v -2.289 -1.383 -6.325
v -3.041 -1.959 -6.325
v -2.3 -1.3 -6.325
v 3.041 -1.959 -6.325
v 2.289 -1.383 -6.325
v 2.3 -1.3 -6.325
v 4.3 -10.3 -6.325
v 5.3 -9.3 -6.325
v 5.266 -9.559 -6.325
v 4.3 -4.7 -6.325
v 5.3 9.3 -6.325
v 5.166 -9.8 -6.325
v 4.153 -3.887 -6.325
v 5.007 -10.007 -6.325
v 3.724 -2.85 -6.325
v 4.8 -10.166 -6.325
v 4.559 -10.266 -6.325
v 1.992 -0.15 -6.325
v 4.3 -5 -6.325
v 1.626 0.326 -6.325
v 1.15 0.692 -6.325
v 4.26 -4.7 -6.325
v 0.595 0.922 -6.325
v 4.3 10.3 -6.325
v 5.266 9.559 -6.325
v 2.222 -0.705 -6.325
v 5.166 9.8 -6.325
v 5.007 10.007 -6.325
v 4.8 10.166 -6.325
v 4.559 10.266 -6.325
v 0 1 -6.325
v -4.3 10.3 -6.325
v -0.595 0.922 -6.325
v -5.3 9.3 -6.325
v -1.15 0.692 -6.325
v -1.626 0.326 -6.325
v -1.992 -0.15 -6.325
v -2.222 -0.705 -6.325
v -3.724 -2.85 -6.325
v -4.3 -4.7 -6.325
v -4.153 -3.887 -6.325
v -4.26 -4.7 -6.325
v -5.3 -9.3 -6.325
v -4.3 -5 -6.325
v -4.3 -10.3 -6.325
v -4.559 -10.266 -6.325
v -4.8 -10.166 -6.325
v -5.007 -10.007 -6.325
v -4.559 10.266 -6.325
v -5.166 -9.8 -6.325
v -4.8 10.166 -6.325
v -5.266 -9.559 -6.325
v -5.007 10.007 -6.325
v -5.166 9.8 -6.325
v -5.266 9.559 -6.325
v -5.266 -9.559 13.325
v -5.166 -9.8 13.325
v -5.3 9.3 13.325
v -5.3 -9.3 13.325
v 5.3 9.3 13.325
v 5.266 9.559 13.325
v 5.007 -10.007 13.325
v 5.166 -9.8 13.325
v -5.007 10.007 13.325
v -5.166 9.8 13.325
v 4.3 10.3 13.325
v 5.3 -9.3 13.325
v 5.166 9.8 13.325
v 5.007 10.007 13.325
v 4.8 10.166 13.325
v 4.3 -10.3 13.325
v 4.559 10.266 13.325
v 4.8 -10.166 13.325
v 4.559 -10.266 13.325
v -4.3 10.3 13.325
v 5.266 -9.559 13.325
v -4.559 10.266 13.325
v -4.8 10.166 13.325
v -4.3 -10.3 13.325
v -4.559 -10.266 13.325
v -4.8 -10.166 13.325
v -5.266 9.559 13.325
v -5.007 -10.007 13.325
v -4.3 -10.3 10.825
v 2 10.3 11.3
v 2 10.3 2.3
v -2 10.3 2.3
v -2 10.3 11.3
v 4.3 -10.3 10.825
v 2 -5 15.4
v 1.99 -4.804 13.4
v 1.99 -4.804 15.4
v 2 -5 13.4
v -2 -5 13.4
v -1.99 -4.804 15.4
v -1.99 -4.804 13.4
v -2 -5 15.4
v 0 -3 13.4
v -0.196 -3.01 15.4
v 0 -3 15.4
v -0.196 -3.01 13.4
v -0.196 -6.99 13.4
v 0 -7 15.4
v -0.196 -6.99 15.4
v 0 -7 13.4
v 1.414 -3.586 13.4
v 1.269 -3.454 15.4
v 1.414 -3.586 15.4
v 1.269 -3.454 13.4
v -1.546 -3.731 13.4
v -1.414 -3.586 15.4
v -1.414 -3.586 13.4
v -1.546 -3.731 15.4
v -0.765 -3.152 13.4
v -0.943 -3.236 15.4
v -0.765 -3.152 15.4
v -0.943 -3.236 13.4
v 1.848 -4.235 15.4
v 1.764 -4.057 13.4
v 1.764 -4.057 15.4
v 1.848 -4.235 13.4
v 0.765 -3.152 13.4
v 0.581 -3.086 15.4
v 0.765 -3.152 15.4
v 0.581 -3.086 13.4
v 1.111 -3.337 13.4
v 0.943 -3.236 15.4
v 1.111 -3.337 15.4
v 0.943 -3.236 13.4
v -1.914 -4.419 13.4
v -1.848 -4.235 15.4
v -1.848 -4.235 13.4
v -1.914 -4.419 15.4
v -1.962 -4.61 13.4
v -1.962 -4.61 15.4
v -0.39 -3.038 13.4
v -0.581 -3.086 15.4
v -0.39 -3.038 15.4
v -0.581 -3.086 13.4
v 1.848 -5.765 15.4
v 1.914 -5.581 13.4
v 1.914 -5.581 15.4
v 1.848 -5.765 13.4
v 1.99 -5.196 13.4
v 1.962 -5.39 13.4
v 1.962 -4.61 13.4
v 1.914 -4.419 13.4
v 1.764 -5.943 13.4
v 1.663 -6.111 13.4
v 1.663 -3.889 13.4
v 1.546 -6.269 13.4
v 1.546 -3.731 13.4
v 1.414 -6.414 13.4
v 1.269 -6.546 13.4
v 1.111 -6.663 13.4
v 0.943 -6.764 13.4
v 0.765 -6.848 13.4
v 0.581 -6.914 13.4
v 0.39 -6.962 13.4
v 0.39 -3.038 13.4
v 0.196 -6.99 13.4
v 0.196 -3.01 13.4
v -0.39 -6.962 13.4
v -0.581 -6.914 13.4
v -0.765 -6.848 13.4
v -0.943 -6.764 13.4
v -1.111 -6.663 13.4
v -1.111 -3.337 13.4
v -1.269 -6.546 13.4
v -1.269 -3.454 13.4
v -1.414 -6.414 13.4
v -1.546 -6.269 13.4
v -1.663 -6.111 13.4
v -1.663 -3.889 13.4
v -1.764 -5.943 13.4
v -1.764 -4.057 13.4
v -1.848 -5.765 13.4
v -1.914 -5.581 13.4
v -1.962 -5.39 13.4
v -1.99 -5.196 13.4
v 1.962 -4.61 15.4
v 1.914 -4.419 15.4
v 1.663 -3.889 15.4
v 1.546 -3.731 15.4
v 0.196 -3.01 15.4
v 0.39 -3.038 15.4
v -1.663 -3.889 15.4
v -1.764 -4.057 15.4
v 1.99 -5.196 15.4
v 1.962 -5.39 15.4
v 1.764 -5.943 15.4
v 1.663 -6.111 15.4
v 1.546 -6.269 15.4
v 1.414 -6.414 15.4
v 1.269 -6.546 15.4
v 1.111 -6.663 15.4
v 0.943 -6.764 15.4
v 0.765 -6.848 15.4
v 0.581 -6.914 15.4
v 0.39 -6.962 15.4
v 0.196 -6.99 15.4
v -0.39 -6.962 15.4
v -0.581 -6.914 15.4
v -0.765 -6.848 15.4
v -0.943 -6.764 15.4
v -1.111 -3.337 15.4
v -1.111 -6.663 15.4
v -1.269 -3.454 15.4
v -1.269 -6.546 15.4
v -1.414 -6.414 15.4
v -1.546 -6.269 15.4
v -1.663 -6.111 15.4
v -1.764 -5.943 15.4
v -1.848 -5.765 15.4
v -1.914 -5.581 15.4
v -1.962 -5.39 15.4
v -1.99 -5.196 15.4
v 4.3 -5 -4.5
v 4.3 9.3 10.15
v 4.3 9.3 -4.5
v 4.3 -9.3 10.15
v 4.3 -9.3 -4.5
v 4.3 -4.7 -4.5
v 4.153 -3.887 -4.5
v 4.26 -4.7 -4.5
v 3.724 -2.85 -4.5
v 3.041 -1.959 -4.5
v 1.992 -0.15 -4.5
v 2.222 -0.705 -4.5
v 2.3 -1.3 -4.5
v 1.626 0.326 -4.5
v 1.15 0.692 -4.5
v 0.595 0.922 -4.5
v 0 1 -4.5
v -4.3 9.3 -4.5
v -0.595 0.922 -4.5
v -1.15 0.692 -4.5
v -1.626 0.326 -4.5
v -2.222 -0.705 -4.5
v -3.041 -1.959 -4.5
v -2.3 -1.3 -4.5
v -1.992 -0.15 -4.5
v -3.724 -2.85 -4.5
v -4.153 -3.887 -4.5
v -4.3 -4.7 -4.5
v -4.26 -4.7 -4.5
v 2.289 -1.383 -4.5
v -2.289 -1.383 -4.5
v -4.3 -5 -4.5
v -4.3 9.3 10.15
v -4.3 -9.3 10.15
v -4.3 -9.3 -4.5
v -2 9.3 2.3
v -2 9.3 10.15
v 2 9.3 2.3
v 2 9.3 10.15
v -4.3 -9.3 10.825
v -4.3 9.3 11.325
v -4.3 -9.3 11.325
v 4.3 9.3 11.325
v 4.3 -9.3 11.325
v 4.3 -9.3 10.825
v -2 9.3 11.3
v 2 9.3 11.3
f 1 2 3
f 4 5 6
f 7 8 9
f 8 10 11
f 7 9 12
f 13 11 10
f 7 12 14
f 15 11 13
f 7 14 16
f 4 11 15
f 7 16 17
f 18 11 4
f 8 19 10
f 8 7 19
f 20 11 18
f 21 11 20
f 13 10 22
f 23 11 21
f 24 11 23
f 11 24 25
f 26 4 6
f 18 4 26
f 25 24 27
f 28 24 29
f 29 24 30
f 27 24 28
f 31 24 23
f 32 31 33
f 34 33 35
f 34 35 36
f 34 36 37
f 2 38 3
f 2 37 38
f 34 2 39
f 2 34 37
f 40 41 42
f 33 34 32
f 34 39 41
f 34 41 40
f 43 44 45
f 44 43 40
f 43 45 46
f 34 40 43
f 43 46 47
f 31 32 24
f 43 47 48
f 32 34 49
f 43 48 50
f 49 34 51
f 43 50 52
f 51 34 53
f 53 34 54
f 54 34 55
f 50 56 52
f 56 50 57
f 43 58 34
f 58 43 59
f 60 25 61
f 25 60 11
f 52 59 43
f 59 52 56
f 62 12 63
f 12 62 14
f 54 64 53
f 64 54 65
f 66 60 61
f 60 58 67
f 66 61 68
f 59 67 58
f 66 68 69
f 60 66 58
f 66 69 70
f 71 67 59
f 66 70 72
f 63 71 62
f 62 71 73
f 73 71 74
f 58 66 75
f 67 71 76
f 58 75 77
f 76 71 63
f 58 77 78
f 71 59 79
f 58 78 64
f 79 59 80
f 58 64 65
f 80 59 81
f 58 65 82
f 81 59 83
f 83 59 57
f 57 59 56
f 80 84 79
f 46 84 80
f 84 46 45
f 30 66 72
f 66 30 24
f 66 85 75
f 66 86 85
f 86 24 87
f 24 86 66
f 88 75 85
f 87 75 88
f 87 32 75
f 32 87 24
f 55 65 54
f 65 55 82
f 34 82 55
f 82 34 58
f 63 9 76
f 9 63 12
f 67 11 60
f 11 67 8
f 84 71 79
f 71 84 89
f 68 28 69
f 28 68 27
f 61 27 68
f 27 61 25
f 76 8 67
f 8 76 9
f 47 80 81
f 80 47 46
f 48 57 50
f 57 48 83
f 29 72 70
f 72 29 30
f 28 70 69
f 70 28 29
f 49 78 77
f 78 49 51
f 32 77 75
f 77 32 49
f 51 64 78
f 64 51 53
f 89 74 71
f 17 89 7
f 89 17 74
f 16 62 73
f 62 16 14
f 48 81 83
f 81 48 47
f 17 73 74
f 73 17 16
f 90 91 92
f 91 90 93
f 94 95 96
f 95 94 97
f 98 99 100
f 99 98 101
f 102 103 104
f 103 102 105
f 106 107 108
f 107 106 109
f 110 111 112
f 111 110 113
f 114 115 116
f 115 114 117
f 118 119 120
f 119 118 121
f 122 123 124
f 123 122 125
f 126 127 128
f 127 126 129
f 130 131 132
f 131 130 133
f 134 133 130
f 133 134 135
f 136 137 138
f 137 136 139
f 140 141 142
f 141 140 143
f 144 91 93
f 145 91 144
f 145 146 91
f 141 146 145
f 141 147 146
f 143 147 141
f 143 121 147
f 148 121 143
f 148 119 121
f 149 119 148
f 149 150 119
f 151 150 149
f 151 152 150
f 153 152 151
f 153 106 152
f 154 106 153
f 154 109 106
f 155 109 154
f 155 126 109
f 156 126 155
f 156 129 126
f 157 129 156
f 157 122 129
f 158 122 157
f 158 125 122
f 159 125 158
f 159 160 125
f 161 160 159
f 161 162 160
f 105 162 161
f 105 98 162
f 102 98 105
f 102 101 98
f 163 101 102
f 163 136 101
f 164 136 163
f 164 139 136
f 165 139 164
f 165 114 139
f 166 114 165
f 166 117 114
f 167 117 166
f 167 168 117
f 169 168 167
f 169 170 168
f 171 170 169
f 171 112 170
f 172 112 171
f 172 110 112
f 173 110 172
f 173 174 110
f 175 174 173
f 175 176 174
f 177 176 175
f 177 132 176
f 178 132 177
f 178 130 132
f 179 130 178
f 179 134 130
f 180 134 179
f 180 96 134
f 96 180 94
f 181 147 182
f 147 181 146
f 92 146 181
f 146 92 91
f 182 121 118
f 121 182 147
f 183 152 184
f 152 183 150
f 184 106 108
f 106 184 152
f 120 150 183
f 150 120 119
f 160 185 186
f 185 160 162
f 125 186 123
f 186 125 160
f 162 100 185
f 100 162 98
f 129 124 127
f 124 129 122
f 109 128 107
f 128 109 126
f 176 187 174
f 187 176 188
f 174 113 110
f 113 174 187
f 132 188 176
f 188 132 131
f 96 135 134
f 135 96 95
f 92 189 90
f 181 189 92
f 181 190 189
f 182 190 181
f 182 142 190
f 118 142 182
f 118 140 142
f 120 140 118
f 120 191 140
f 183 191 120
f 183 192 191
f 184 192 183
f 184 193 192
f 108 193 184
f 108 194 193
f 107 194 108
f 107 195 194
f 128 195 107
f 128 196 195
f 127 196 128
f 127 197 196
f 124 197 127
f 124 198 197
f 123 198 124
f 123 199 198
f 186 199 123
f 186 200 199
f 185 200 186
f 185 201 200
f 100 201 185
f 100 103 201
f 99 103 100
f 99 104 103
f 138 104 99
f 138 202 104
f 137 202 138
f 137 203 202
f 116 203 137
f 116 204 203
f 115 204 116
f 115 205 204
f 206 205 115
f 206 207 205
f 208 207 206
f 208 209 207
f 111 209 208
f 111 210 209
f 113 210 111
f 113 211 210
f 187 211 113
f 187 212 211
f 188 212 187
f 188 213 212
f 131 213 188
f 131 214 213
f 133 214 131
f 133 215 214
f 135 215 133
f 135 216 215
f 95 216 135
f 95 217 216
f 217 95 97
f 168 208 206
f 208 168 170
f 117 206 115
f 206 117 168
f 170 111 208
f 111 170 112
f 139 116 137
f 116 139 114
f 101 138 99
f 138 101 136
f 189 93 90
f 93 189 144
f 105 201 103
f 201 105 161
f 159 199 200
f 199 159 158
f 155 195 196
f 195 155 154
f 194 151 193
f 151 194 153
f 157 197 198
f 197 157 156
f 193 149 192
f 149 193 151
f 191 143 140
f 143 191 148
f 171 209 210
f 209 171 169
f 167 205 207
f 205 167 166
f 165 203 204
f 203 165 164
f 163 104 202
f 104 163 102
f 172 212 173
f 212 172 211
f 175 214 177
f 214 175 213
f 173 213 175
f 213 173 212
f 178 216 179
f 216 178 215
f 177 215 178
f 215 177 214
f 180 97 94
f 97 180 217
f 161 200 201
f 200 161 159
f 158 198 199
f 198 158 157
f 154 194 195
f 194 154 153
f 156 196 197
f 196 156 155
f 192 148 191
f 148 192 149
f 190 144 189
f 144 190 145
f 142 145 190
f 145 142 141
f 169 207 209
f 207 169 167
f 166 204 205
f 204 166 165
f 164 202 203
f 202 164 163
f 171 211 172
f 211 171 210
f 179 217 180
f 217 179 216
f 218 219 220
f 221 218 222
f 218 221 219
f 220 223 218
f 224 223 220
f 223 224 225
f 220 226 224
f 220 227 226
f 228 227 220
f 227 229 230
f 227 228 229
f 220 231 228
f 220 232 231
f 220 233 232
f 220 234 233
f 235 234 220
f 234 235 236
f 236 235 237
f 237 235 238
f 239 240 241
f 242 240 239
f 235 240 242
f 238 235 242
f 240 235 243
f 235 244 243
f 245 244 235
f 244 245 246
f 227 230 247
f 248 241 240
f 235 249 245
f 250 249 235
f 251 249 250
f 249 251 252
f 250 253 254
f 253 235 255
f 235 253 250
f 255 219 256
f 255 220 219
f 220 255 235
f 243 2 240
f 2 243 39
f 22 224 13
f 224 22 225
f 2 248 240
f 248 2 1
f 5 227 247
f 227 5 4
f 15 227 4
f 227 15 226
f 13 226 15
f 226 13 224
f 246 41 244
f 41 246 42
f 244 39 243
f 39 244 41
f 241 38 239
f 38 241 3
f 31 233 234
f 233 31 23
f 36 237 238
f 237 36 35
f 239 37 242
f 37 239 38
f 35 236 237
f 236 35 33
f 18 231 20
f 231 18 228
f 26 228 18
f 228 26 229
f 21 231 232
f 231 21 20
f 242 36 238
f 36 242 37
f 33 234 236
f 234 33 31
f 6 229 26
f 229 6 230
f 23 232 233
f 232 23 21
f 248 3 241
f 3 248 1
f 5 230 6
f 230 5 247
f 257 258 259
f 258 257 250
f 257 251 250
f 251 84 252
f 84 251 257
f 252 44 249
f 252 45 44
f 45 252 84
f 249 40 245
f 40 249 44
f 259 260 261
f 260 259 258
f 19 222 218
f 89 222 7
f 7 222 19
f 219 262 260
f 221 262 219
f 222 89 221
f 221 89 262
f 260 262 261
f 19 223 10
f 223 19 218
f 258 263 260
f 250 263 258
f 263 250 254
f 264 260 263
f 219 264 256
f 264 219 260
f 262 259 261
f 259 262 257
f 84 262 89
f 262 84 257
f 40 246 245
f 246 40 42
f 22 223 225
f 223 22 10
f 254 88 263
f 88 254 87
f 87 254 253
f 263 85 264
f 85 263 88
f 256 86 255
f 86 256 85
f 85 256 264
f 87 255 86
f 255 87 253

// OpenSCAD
// file: config.scad
//Parameters for servo_lx16a
$fn = 24;
//x,y,z => l,w,h


servo_l         = 45.20; 
servo_w         = 24.70; 
body_h          = 32;

servo_h         = 35;

hub_offset      = 10.10;

rad = 2;


w_between_holes = 20.5;
l_between_top_holes = 20.7;
l_between_bottom_holes = 24.45;
top_hole_l_offset = 6.1;
bottom_hole_l_offset = 2.35;

hole_dia = 1.6;
attach_screw_l = 5;

top_hub_carve_h = 2.6;
bottom_hub_carve_h = 3.4;

top_attach_carve_h = 1.1;
bottom_attach_carve_h = 1.9;

hub_carve_r = 10.8;

hub_r = 10.1;

w_between_ridges = 19.5;

top_horn_h = 3.20;
bottom_horn_h = 3.85;

top_horn_r = 3.15;
bottom_horn_r = 3;



hub_h           = 4;
small_hub_r     = 6.15/2;  
horn_r          = 4.66/2;
horn_h          = 3;

wire_l          = 4;
wire_w          = 1.5;
wire_h          = 1;
wire_place      = 4.8;
// file: electronics.scad
$fn=100;

//on_off_switch();

//pi_zero();

//translate ([0,100,0])
//pca9685();

//dc_dc();

//pi_camera();



module header(pins, rows){
  color("darkgrey") cube([2.54*pins,2.54*rows,1.27]);
  
  color("gold")
  for(x=[0:pins-1],y=[0:rows-1])
    translate([x*2.54+(1.27+.6)/2,y*2.54+(1.27+.6)/2,-3.5]) cube([0.6,0.6,11.5]);
}


module pi_zero(){
    // PCB
    color("limegreen") difference(){
        hull(){
            translate([-(65-6)/2,-(30-6)/2,0]) cylinder(r=3, h=1.4 );
            translate([-(65-6)/2, (30-6)/2,0]) cylinder(r=3, h=1.4 );
            translate([ (65-6)/2,-(30-6)/2,0]) cylinder(r=3, h=1.4 );
            translate([ (65-6)/2, (30-6)/2,0]) cylinder(r=3, h=1.4 );
        }
        
        translate([-65/2+3.5,-30/2+3.5,-1]) cylinder(d=2.75, h=3);
        translate([-65/2+3.5, 30/2-3.5,-1]) cylinder(d=2.75, h=3);
        translate([65/2-3.5,-30/2+3.5,-1]) cylinder(d=2.75, h=3);
        translate([65/2-3.5, 30/2-3.5,-1]) cylinder(d=2.75, h=3);
    }
    
    // Header
    translate([-10*2.54,30/2-2.54-3.5,1.4])
    header(20,2);
    
    translate([-65/2,-30/2,1.4]){
        color("silver"){
        
            // micro USB
            translate([41-8/2,-1.5,0]) cube([8,6,2.6]);
            translate([54-8/2,-1.5,0]) cube([8,6,2.6]);        
            
            // HDMI
            translate([6.9,-1.5,0]) cube([13,7,3]);
        }
    
        color("darkgrey"){
        
            // Camera
            translate([64-4/2,7.1,0]) cube([4,16,2.5]);
        }
    
        // Micro SD Card
        color("silver") translate([0,8.6,-0]) cube([13,14,1.5]);    
        color("darkgrey") translate([-2.4,10.1,0]) cube([2.4,11,1]);
    }
}



module pca9685(withHeader=true){  
  
    // PCB
    color("limegreen") difference(){
        translate([0,0,0]) hull(){
            translate([-(62.5-6)/2,-(25.4-6)/2,0]) cylinder(r=3, h=1.4 );
            translate([-(62.5-6)/2, (25.4-6)/2,0]) cylinder(r=3, h=1.4 );
            translate([ (62.5-6)/2,-(25.4-6)/2,0]) cylinder(r=3, h=1.4 );
            translate([ (62.5-6)/2, (25.4-6)/2,0]) cylinder(r=3, h=1.4 );
        }
        
        translate([-55.9/2,-18.8/2,-1]) cylinder(d=2.75, h=3);
        translate([-55.9/2, 18.8/2,-1]) cylinder(d=2.75, h=3);
        translate([55.9/2,-18.8/2,-1]) cylinder(d=2.75, h=3);
        translate([55.9/2, 18.8/2,-1]) cylinder(d=2.75, h=3);
    } 
    
    
    // capacitor
    color("silver")
    translate([-(62.5/2)+17.1,(25.4-8.3)/2,1.4])
    cylinder(d=8.3, h=12.7);
    
    //power connector
    color("blue")
    translate([-(62.5/2)+25.1+2.54*2,(25.4-8.3)/2,1.4])
    cube([2.54*2,4,8]);
    
    // Header top
    translate([-(62.5/2)+5.65,-25.4/2,1.4])
    header(4,3);
    
    translate([2.25,-25.4/2,1.4])
    header(4,3);
    
    translate([-2.25-2.54*4,-25.4/2,1.4])
    header(4,3);
    
    translate([62.5/2-5.65-2.54*4,-25.4/2,1.4])
    header(4,3);
    
    translate([62.5/2,-25.4/2+5.08,1.4])
    rotate([0,0,90])
    header(6,1);
    
    translate([-62.5/2+2.54,-25.4/2+5.08,1.4])
    rotate([0,0,90])
    header(6,1);

  
}

module dc_dc(){
    
    // PCB
    color("limegreen") difference(){
        translate([0,0,0]) hull(){
            translate([-(24.5-6)/2,-(48-6)/2,0]) cylinder(r=3, h=1.4 );
            translate([-(24.5-6)/2, (48-6)/2,0]) cylinder(r=3, h=1.4 );
            translate([ (24.5-6)/2,-(48-6)/2,0]) cylinder(r=3, h=1.4 );
            translate([ (24.5-6)/2, (48-6)/2,0]) cylinder(r=3, h=1.4 );
        }
      
        translate([0,0,-1]) {
            
            //translate([-17/2,-35/2,0])
            //cylinder(d=3.15, h=2.5);
            
            translate([-17/2,35/2, 0])
            cylinder(d=3.15, h=2.5);
            
            translate([17/2,-35/2, 0])
            cylinder(d=3.15, h=2.5);
            
            //translate([17/2,35/2, 0])
            //cylinder(d=3.15, h=2.5); 
          
        }


    } 
    
    
    // capacitors
    color("darkblue")
    translate([-(24.5/2)+12.1,(48-8)/2,1.4])
    cylinder(d=8, h=10);
    
    color("darkblue")
    translate([-(24.5/2)+12.1,-(48-8)/2,1.4])
    cylinder(d=8, h=10);
    
    //toroid
    
    difference(){
        
        color("orange")
        translate([(24.5/2)-22.1+9,(48-30)/2,1.4])
        cylinder(d=12, h=7.6);
        
        color("orange")
        translate([(24.5/2)-22.1+9,(48-30)/2,0.5])
        cylinder(d=6, h=11);

        
    }
    
    
    //potentiometer
    color("blue")
    translate([24.5/2-2,-48/2+9,1.4])
    rotate([0,0,90])
    cube([5,10,11]);
    
    
    //IC
    color("black")
    translate([24.5/2-8,-48/2+15,1.4])
    rotate([0,0,90])
    cube([11,11,5]);
    
    
}


module on_off_switch(){
    
    union(){
        
        color("silver")
        translate([-8/2, -4/2, 0])
        cube([8, 4, 3.8]);
        
        color("black")
        translate([-1.5/2, -1.5/2, 3.8])
        cube([1.5, 1.5, 3]);
        
        color("silver")
        translate([-0.5/2, -0.5/2, -3.2])
        cube([0.5, 0.5, 3.2]);
        
        color("silver")
        translate([-0.5/2-2.5, -0.5/2, -3.2])
        cube([0.5, 0.5, 3.2]);
        
        color("silver")
        translate([-0.5/2+2.5, -0.5/2, -3.2])
        cube([0.5, 0.5, 3.2]);
        
        
        
        
    }
    
}


module pi_camera(){
    difference(){
        union(){
            color("limegreen")
            translate([-25.5/2, -24.5/2, 0])
            cube([25.5, 24.5, 0.9]);
            
            
            //camera sensor
            color("darkgrey")
            translate([-8.5/2, -8.5/2+2.4, 0.9])
            cube([8.5, 8.5, 3.5]);
            
            color("darkgrey")
            translate([0, 2.4, 0.9+3.5])
            cylinder(d=8, h=0.75, $fn=32);
        
            color("darkgrey")
            translate([0, 2.4, 0.9+3.5+0.75])
            cylinder(d=6, h=0.75, $fn=32);
            
            color("darkgrey")
            translate([0, 2.4, 0.9+3.5+0.75+0.75])
            cylinder(d1=2, d2=5, h=2, $fn=32);
            
            //sensor connector
            color("orange")
            translate([-8.5/2, -8.5/2+2.4-10.5, 0.9])
            cube([8.5, 10.5, 2.5]);
            
            //led
            color("white")
            translate([-20/2, -8.5/2+2.4-7, 0.9])
            cube([20, 3, 1]);            
            
            
            //connector
            color("white")
            translate([-20.8/2, -5.5+24/2, -2.4])
            cube([20.8, 5.5, 2.4]);
            
            
    
        }
          
        translate([-21/2,-20/2,-1]) cylinder(d=2.1, h=3);
        translate([-21/2, 20/2-7.5,-1]) cylinder(d=2.1, h=3);
        translate([21/2,-20/2,-1]) cylinder(d=2.1, h=3);
        translate([21/2, 20/2-7.5,-1]) cylinder(d=2.1, h=3);
    }
    
    
}
// file: servo_5g.scad
include <Config.scad>

servo_5g();


$fn = 24;
//x,y,z => l,w,h


module servo_5g() {
  
    translate([-servo5_l/2, -servo5_w/2, -body5_h/2-hub5_h/2-horn5_h/2]) {
    
        color("white") 
        translate([servo5_l/2,servo5_l/2,body5_h+hub5_h])
        cylinder(r=horn5_r,h=horn5_h);
        
        color("deepSkyBlue",.7) //deepSkyBlue
        union() {
            cube([servo5_l,servo5_w,body5_h]);
            translate([servo5_l/2,servo5_l/2,body5_h])
            cylinder(r=servo5_l/2,h=hub5_h);
            translate([servo5_l/2,servo5_l/2+3.7,body5_h])
            cylinder(r=small_hub5_r,h=hub5_h);
            
        }
    }
}
// file: servo_12g.scad
include <config.scad>


servo_12g();


$fn = 24;
//x,y,z => l,w,h


module servo_12g() {
  
    translate([-servo_l/2, -servo_w/2, -body_h/2-hub_h/2-horn_h/2]) {
    
        color("white") 
        translate([servo_l/2,servo_l/2,body_h+hub_h])
        cylinder(r=horn_r,h=horn_h);
        
        color("deepSkyBlue",.7) //deepSkyBlue
        union() {
            cube([servo_l,servo_w,body_h]);
            translate([servo_l/2,servo_l/2,body_h])
            cylinder(r=servo_l/2,h=hub_h);
            translate([servo_l/2,servo_l/2+6.30,body_h])
            cylinder(r=small_hub_r,h=hub_h);
            
        }
    }
}

module roundedRect(size, radius)
{
x = size[0];
y = size[1];
z = size[2];

translate([x/2+radius/2, y/2+radius/2, 0]){
linear_extrude(height=z)
hull()
{
// place 4 circles in the corners, with the given radius
translate([(-x/2)+(radius/2), (-y/2)+(radius/2), 0])
circle(r=radius);

translate([(x/2)-(radius/2), (-y/2)+(radius/2), 0])
circle(r=radius);

translate([(-x/2)+(radius/2), (y/2)-(radius/2), 0])
circle(r=radius);

translate([(x/2)-(radius/2), (y/2)-(radius/2), 0])
circle(r=radius);
}
}
}
// file: Config.scad
//Parameters for 12g servo
$fn = 24;
//x,y,z => l,w,h

tap_r = 0.85;
hole_r = 1.0;

servo_l         = 12;  // was 12
servo_w         = 24;  // was 23
body_h          = 20.80;

servo_h         = 27; //not used in code was 27

wing_w          = 4.5;
wing_h          = 2.33;
wing_place      = 16.3;   
hole_offset     = 2.2;    //not checked
mount_hole_r    = 2/2;
mount_slot      = 1;

servo_ww        = servo_w+wing_w*2; // not used in code but is handy number

hub_h           = 4;
small_hub_r     = 6.15/2;  
horn_r          = 4.66/2;
horn_h          = 3;

wire_l          = 4;
wire_w          = 1.5;
wire_h          = 1;
wire_place      = 4.8;

servo_full_w    = servo_w+wing_w*2;

rad = 2;




//Parameters for 5g servo

servo5_l         = 8.6; 
servo5_w         = 18.6; 
body5_h          = 14.65;


hub5_h = 2.15;
small_hub5_r = 4.6/2;  
horn5_r = 4.66/2;
horn5_h = 3;

servo5_h         = body5_h+hub5_h+horn5_h;

mount_x = servo5_l + 2;
mount_y = servo5_w + 2;
mount_round = 1;
servo_tol = 0.2;
servo5_x     = servo5_l + servo_tol*2; //~12
servo5_y     = servo5_w + servo_tol*8; //~23
// main file
include <Config.scad>
use <servo_12g.scad>
use <servo_5g.scad>
use <electronics.scad>


Citro6_33();


module Citro6_33(){

echo("mount_y: ", mount_y);
    
    mount5_x = servo5_l + 2;
    mount5_y = servo5_w + 2;
    mount_round = 1;
    servo_tol = 0.2;
    

difference() {
        union() {
            translate([-mount5_x/2,-mount5_y/2,-body5_h/2+1])
            roundedRect([mount5_x-mount_round,mount5_y-mount_round,body5_h+5], mount_round);
            
            translate([0, -5, body5_h-1.25])
            cylinder(d=4, h=2, $fn=64);
            

            
        }
    translate([0,0,4])
    cube([servo5_l, servo5_w, body5_h], center=true);
        
    translate([0,-9-5,1.5])
    cube([servo5_l, servo5_w, body5_h+4], center=true);
        
    
    
    translate([0,0,0.25])
    //translate([(mount5_x-servo5_y)/2+servo5_y-4*servo_tol,(mount5_y-servo5_l)/2,2])
    rotate([0,180,0])
    servo_5g(false);
        
    translate([0,9+1,6.8])
    cube([4, 5, 9], center=true);
        
    
    
    ////translate([(mount5_x-servo_y)/2+servo_y-4*servo_tol,(mount5_y-servo_l)/2,2])
    //translate([8,servo_l+2,2])
    //rotate([0,0,-90])
    //servo_60g(false);
    



    
}
}
